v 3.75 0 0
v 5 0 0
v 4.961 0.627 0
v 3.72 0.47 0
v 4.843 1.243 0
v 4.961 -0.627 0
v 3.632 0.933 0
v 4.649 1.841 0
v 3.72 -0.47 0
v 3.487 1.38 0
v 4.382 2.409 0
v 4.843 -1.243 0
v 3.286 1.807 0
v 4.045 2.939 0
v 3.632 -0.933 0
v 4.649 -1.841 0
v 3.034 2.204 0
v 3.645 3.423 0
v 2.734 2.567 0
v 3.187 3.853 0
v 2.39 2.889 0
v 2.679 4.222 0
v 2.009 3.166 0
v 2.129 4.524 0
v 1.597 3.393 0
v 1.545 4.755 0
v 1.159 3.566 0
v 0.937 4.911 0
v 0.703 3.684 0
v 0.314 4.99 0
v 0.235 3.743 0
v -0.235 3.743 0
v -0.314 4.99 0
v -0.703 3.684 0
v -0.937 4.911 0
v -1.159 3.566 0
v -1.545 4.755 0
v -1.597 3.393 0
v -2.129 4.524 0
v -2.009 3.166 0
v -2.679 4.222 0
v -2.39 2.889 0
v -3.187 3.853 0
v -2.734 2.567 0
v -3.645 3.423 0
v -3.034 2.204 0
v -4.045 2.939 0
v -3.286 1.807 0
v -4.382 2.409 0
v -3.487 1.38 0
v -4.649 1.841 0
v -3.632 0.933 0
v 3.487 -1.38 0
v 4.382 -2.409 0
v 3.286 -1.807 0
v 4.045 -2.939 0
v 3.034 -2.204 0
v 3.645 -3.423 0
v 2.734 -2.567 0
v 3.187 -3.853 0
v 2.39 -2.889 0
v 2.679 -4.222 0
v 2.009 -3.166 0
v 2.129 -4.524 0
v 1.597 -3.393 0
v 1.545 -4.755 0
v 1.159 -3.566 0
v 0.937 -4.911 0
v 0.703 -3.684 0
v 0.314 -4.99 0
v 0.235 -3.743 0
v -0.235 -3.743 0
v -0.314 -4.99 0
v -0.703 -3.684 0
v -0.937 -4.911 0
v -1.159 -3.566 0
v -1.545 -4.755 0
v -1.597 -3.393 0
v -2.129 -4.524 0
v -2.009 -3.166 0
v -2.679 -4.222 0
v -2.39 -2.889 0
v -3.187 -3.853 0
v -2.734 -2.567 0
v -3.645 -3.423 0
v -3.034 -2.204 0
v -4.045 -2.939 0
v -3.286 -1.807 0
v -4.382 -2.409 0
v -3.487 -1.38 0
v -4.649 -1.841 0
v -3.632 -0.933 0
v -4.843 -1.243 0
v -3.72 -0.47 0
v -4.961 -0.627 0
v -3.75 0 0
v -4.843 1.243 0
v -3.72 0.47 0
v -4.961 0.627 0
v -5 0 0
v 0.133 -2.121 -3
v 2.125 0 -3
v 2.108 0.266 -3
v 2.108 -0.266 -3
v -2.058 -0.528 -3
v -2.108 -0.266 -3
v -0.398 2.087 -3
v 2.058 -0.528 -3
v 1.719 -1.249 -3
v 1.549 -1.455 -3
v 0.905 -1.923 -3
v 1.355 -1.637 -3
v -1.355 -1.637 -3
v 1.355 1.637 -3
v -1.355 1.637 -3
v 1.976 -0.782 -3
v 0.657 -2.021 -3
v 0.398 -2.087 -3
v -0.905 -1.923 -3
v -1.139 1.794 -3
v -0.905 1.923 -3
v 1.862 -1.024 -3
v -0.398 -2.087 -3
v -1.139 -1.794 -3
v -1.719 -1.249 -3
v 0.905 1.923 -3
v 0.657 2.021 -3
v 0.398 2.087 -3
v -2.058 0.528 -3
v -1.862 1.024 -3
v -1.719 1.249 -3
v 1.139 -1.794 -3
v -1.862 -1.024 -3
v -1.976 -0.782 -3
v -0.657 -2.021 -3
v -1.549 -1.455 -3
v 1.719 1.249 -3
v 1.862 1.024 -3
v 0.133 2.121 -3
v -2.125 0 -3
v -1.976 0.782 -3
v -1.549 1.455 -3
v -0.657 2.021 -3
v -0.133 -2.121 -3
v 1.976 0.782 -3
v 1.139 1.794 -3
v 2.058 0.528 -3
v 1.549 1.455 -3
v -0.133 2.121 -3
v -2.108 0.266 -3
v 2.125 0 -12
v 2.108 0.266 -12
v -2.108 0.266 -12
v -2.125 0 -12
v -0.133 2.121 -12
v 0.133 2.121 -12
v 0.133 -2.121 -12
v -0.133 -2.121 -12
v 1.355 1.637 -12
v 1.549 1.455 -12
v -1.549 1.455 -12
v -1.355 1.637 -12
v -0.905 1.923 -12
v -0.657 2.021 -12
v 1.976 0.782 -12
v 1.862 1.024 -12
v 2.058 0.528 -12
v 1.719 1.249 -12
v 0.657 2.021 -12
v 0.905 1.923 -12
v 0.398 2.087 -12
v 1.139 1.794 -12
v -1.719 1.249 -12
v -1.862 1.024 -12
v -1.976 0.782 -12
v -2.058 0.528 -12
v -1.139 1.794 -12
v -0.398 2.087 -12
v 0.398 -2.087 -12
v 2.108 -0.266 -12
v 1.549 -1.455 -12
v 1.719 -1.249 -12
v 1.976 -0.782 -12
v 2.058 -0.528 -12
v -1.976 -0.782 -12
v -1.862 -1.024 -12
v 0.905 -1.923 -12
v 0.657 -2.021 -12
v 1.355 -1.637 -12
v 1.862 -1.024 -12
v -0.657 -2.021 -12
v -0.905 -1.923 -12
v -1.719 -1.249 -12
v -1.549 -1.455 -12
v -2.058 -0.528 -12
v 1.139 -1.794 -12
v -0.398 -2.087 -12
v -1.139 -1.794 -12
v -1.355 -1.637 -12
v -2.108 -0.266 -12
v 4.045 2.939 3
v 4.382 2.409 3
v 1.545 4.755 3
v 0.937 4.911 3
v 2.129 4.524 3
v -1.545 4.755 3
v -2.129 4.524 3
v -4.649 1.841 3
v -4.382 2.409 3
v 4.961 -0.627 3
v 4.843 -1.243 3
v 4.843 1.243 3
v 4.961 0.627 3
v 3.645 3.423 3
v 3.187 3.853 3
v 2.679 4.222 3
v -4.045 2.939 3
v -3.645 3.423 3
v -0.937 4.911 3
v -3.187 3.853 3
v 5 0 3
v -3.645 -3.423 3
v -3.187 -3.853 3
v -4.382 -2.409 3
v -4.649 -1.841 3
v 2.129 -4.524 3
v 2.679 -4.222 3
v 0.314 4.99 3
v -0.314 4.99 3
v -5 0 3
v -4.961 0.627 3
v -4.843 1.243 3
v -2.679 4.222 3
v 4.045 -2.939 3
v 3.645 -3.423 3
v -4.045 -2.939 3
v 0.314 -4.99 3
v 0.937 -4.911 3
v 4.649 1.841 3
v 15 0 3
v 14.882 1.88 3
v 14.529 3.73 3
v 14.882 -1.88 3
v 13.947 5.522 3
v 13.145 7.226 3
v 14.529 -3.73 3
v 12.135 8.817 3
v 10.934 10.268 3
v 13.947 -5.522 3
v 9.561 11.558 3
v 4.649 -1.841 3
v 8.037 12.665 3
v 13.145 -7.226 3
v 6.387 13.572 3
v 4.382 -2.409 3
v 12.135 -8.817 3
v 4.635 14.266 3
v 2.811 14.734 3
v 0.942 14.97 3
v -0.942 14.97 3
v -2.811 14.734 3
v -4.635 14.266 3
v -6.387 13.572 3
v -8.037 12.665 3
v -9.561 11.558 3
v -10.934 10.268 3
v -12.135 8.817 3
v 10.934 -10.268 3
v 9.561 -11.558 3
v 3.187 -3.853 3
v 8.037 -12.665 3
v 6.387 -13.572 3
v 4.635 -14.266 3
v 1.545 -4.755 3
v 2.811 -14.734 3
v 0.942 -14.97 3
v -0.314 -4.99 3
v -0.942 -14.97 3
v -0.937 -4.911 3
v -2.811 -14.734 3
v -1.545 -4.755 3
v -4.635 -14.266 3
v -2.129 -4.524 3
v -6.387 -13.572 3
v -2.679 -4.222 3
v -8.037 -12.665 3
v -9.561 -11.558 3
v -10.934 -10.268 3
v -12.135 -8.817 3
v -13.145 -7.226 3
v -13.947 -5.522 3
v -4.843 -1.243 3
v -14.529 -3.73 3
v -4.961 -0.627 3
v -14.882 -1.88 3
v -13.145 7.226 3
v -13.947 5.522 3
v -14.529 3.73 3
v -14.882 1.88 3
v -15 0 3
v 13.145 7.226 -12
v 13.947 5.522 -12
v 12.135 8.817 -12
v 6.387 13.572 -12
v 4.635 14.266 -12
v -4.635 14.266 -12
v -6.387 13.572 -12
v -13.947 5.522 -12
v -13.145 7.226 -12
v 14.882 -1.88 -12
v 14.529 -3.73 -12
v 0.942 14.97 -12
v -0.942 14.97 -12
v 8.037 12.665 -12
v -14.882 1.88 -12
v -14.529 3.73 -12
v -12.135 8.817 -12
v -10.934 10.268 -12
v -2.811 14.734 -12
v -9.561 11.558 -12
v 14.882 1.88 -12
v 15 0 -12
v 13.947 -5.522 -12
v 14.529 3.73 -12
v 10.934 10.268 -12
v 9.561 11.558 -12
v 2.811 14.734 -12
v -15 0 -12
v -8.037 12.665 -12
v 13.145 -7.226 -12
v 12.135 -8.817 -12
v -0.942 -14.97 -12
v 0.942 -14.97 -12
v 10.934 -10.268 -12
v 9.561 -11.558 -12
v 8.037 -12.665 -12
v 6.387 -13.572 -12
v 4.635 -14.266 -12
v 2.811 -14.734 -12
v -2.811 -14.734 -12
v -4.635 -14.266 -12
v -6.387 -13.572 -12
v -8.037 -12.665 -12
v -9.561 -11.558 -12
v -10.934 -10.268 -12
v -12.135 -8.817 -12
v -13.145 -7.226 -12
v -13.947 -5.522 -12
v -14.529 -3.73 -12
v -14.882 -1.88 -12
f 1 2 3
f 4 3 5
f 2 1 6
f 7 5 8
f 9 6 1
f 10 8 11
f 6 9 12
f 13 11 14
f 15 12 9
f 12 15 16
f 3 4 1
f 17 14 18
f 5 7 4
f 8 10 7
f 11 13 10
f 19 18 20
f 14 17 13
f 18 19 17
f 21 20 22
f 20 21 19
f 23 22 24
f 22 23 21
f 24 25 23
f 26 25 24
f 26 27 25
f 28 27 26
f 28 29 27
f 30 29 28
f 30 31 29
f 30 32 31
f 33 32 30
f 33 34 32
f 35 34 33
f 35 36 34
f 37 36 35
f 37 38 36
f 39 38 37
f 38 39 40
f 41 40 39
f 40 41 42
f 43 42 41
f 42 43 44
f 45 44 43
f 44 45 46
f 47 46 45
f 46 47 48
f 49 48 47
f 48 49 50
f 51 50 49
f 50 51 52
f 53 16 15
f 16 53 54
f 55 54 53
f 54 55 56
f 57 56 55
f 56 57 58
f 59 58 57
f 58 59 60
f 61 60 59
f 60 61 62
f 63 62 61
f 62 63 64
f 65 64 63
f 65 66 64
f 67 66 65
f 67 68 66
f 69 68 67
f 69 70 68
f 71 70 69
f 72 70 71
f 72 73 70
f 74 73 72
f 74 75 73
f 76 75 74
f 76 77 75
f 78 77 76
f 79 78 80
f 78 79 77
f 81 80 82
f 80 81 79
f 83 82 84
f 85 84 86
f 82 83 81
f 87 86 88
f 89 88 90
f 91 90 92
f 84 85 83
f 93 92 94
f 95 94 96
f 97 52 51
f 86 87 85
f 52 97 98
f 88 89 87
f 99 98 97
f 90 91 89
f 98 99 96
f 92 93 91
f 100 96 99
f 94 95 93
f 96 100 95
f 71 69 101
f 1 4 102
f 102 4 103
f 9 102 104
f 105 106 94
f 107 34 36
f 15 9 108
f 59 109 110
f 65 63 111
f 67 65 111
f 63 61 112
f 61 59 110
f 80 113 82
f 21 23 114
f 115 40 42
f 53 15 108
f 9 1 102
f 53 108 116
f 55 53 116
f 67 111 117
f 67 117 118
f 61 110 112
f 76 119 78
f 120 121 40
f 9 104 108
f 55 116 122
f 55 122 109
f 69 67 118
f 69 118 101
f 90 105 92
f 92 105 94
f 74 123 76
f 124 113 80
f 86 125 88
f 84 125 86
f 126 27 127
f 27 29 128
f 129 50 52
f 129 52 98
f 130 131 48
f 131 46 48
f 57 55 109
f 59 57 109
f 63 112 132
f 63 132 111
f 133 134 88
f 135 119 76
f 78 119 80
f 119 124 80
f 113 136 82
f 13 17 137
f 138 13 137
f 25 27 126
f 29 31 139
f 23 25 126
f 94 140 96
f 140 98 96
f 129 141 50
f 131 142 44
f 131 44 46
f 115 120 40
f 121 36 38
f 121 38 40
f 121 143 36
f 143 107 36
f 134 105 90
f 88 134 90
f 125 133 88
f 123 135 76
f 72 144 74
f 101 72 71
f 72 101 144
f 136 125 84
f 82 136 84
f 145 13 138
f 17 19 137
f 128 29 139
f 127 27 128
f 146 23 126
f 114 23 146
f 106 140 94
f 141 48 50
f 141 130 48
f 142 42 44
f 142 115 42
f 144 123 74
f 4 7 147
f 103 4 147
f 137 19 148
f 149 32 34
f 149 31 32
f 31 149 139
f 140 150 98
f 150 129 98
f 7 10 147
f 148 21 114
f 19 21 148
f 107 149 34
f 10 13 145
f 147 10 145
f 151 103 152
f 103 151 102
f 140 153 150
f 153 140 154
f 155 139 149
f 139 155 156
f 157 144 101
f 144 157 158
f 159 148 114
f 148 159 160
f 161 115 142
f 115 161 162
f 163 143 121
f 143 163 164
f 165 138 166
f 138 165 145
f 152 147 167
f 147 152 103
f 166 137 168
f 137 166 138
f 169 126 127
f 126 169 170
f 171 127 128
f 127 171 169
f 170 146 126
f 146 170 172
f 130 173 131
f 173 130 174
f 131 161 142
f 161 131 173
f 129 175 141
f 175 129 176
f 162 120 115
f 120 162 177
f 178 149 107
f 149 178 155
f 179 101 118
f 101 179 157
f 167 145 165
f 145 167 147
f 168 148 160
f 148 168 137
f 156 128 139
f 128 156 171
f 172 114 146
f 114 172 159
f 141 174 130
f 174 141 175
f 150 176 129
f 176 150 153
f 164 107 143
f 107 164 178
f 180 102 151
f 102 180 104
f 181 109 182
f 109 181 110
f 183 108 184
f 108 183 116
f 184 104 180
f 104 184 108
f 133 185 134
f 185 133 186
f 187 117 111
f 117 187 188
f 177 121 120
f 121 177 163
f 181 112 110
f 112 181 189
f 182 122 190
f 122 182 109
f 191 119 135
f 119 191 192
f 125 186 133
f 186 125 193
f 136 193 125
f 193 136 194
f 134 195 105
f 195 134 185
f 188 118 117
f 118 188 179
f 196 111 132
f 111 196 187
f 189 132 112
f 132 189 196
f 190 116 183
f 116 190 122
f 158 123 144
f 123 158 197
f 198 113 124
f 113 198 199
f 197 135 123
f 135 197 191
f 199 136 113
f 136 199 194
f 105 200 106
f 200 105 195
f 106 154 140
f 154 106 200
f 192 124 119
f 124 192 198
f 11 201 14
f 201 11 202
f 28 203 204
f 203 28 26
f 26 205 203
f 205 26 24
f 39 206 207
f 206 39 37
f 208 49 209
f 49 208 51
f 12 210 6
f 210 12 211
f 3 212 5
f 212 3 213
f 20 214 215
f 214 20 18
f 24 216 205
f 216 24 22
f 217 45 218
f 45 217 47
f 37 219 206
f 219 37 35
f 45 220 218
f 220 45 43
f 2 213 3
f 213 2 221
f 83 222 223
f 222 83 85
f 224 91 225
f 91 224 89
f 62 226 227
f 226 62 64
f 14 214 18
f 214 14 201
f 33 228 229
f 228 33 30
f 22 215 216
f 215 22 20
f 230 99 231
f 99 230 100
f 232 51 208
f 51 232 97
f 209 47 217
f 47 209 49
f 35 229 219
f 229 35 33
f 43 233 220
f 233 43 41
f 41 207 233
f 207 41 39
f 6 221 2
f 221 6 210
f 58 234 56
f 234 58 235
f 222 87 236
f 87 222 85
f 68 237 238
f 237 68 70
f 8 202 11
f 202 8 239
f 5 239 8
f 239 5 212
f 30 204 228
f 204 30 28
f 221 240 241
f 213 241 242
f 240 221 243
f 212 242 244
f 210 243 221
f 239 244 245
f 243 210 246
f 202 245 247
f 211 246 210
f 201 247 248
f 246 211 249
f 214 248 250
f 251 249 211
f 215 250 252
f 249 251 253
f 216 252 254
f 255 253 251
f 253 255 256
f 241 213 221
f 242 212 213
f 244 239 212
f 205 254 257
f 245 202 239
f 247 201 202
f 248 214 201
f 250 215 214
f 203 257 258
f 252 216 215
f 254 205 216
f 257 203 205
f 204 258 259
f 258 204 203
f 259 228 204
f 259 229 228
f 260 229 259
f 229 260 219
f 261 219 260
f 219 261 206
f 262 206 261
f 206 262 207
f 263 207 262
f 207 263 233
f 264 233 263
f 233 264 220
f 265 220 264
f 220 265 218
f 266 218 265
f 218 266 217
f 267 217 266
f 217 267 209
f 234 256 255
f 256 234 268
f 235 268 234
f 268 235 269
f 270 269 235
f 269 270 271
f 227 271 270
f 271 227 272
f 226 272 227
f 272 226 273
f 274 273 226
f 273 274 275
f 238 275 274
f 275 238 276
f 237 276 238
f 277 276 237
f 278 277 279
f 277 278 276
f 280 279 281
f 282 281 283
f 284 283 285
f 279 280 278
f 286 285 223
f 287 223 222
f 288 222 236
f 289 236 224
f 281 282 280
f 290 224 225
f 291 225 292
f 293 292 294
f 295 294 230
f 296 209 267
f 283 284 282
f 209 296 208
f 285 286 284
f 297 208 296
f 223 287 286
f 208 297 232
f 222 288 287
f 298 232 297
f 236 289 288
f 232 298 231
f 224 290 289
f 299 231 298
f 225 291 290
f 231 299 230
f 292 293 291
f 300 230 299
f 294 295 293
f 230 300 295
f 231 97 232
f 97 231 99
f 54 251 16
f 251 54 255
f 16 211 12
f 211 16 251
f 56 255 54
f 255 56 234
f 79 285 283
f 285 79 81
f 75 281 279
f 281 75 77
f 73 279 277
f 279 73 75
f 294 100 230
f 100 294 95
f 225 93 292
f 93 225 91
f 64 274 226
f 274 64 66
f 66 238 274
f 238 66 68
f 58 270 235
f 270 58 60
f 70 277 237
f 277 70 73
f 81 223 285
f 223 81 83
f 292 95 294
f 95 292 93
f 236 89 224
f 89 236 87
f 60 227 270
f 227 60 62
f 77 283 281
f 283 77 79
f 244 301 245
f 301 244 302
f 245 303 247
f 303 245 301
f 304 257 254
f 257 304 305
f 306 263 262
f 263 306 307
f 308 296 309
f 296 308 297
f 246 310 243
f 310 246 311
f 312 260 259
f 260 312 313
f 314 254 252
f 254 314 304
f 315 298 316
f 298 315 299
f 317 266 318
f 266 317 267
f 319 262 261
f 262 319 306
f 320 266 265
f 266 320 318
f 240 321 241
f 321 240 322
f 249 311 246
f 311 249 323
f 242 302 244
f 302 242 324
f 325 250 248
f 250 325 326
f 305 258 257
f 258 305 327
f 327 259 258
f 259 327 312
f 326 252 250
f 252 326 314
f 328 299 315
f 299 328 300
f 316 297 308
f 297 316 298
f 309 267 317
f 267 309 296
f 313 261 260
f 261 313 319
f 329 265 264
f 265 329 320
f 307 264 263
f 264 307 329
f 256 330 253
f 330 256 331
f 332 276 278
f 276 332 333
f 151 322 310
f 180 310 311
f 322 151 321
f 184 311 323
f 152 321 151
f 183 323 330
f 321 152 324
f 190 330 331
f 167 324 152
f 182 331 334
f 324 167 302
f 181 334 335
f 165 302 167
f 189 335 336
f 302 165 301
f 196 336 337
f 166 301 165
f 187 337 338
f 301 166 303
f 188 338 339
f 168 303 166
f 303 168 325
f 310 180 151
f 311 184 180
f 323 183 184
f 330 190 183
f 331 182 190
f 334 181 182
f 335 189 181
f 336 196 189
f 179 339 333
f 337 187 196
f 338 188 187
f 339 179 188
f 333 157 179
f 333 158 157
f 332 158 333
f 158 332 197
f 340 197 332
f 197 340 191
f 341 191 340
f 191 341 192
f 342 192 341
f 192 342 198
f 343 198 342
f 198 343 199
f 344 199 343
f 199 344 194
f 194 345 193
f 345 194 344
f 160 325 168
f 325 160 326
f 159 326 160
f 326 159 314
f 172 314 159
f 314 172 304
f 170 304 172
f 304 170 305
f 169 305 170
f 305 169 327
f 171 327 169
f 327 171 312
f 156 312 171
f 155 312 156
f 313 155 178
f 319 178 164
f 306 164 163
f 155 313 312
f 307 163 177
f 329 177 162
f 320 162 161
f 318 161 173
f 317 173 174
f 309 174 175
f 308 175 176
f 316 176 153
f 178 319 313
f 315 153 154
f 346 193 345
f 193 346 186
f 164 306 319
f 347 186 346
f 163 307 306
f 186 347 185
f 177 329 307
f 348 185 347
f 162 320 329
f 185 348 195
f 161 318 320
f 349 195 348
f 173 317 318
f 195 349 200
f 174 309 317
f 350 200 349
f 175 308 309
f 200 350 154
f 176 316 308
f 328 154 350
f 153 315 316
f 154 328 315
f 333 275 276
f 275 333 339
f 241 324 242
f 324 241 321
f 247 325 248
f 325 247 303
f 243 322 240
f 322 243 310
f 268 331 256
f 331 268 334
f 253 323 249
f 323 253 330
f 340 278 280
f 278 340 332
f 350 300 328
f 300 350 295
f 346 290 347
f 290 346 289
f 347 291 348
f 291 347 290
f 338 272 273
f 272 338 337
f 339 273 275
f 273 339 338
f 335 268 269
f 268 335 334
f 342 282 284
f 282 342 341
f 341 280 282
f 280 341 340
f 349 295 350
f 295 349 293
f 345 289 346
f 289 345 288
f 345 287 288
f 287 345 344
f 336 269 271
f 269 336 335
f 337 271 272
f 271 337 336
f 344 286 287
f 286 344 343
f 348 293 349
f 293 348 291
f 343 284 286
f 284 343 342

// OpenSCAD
$fn = 50;


difference() {
	union() {
		translate(v = [0, 0, -12.0000000000]) {
			cylinder(h = 15, r = 15.0000000000);
		}
	}
	union() {
		translate(v = [0, 0, 0]) {
			rotate(a = [0, 0, 0]) {
				difference() {
					union() {
						translate(v = [0, 0, -15.0000000000]) {
							cylinder(h = 15, r = 2.0000000000);
						}
						translate(v = [0, 0, -3]) {
							cylinder(h = 3, r1 = 2.1250000000, r2 = 3.7500000000);
						}
						translate(v = [0, 0, -15.0000000000]) {
							cylinder(h = 15, r = 2.1250000000);
						}
						translate(v = [0, 0, -15.0000000000]) {
							cylinder(h = 15, r = 2.0000000000);
						}
					}
					union();
				}
			}
		}
		#cylinder(h = 3, r = 5.0000000000);
	}
}
